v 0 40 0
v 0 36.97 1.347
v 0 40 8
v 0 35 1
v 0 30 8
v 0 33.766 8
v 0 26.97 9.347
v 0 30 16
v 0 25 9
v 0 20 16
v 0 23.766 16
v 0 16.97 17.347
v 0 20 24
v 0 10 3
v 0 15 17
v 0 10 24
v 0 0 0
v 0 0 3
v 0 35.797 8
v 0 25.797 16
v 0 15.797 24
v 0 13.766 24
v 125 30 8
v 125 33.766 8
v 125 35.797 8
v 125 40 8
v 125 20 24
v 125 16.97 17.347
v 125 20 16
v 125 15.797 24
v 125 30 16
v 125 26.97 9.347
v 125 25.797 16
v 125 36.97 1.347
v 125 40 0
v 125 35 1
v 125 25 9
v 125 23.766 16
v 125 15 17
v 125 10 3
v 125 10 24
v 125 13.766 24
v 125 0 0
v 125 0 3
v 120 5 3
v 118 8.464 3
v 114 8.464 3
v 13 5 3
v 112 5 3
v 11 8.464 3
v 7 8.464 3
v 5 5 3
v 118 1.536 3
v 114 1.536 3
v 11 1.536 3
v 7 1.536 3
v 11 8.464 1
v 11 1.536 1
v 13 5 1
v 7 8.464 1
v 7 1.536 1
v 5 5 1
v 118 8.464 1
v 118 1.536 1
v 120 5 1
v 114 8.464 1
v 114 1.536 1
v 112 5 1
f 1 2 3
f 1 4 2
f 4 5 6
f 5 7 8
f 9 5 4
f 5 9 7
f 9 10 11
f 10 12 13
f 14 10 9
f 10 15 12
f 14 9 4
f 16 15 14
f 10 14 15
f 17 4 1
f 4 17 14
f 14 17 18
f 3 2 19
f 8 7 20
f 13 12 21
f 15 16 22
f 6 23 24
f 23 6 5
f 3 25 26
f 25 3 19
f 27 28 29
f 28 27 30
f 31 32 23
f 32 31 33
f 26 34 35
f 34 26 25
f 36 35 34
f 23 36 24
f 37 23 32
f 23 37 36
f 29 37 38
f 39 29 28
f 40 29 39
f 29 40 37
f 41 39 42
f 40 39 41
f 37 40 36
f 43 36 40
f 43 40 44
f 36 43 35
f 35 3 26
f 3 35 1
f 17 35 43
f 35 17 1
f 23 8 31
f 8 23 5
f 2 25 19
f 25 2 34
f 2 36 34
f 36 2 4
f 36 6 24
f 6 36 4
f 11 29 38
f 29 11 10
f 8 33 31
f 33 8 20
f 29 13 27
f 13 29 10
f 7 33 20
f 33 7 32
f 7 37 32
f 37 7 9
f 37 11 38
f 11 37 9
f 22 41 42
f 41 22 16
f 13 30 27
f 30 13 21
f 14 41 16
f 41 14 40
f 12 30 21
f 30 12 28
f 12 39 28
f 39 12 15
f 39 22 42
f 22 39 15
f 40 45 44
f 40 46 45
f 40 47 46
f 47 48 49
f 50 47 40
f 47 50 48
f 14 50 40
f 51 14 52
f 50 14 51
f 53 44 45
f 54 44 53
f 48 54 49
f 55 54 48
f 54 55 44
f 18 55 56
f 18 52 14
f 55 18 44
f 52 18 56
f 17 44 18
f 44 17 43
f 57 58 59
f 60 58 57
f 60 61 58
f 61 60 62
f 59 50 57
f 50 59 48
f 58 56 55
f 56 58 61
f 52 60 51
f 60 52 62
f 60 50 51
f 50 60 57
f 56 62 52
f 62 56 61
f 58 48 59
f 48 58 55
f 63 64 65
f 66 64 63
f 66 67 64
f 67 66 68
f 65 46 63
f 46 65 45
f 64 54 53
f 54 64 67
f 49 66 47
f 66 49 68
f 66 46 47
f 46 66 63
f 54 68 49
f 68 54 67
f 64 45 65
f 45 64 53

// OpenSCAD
length = 125;
width = 30;
height = 8; 
sectionWidth = 10;
sectionHeight = 8;
lipWidth = 10;
lipHeight = 3;
connectorFemaleDiameter = 4;
connectorFemaleHeight = 2;
connectorLengthOffset = 5;
connectorWidthOffset = lipWidth / 2 - connectorFemaleDiameter;

$fn = 6;
difference() {
    union() {
        cube([length, lipWidth, lipHeight]);
        translate([0, lipWidth, 0]){
            translate([0, sectionWidth * 2, 0])
                Section(sectionHeight * 1);
            translate([0, sectionWidth * 1, 0])
                Section(sectionHeight * 2);
            translate([0, sectionWidth * 0, 0])
                Section(sectionHeight * 3);    
        }
    }
    translate([connectorFemaleDiameter + connectorLengthOffset, connectorFemaleDiameter + connectorWidthOffset, lipHeight - connectorFemaleHeight])
        cylinder(h = connectorFemaleHeight, r = connectorFemaleDiameter);
    translate([length - (connectorFemaleDiameter + connectorLengthOffset), connectorFemaleDiameter + connectorWidthOffset, lipHeight - connectorFemaleHeight])
        cylinder(h = connectorFemaleHeight, r = connectorFemaleDiameter);
}
module Section(sectionHeight)
{
    difference() {
        cube([length, sectionWidth, sectionHeight]);
        translate([0, 5, (sectionHeight - height) + 1])
            rotate([10, 0, 0])
                cube([length, 2, height]);
    }
}
